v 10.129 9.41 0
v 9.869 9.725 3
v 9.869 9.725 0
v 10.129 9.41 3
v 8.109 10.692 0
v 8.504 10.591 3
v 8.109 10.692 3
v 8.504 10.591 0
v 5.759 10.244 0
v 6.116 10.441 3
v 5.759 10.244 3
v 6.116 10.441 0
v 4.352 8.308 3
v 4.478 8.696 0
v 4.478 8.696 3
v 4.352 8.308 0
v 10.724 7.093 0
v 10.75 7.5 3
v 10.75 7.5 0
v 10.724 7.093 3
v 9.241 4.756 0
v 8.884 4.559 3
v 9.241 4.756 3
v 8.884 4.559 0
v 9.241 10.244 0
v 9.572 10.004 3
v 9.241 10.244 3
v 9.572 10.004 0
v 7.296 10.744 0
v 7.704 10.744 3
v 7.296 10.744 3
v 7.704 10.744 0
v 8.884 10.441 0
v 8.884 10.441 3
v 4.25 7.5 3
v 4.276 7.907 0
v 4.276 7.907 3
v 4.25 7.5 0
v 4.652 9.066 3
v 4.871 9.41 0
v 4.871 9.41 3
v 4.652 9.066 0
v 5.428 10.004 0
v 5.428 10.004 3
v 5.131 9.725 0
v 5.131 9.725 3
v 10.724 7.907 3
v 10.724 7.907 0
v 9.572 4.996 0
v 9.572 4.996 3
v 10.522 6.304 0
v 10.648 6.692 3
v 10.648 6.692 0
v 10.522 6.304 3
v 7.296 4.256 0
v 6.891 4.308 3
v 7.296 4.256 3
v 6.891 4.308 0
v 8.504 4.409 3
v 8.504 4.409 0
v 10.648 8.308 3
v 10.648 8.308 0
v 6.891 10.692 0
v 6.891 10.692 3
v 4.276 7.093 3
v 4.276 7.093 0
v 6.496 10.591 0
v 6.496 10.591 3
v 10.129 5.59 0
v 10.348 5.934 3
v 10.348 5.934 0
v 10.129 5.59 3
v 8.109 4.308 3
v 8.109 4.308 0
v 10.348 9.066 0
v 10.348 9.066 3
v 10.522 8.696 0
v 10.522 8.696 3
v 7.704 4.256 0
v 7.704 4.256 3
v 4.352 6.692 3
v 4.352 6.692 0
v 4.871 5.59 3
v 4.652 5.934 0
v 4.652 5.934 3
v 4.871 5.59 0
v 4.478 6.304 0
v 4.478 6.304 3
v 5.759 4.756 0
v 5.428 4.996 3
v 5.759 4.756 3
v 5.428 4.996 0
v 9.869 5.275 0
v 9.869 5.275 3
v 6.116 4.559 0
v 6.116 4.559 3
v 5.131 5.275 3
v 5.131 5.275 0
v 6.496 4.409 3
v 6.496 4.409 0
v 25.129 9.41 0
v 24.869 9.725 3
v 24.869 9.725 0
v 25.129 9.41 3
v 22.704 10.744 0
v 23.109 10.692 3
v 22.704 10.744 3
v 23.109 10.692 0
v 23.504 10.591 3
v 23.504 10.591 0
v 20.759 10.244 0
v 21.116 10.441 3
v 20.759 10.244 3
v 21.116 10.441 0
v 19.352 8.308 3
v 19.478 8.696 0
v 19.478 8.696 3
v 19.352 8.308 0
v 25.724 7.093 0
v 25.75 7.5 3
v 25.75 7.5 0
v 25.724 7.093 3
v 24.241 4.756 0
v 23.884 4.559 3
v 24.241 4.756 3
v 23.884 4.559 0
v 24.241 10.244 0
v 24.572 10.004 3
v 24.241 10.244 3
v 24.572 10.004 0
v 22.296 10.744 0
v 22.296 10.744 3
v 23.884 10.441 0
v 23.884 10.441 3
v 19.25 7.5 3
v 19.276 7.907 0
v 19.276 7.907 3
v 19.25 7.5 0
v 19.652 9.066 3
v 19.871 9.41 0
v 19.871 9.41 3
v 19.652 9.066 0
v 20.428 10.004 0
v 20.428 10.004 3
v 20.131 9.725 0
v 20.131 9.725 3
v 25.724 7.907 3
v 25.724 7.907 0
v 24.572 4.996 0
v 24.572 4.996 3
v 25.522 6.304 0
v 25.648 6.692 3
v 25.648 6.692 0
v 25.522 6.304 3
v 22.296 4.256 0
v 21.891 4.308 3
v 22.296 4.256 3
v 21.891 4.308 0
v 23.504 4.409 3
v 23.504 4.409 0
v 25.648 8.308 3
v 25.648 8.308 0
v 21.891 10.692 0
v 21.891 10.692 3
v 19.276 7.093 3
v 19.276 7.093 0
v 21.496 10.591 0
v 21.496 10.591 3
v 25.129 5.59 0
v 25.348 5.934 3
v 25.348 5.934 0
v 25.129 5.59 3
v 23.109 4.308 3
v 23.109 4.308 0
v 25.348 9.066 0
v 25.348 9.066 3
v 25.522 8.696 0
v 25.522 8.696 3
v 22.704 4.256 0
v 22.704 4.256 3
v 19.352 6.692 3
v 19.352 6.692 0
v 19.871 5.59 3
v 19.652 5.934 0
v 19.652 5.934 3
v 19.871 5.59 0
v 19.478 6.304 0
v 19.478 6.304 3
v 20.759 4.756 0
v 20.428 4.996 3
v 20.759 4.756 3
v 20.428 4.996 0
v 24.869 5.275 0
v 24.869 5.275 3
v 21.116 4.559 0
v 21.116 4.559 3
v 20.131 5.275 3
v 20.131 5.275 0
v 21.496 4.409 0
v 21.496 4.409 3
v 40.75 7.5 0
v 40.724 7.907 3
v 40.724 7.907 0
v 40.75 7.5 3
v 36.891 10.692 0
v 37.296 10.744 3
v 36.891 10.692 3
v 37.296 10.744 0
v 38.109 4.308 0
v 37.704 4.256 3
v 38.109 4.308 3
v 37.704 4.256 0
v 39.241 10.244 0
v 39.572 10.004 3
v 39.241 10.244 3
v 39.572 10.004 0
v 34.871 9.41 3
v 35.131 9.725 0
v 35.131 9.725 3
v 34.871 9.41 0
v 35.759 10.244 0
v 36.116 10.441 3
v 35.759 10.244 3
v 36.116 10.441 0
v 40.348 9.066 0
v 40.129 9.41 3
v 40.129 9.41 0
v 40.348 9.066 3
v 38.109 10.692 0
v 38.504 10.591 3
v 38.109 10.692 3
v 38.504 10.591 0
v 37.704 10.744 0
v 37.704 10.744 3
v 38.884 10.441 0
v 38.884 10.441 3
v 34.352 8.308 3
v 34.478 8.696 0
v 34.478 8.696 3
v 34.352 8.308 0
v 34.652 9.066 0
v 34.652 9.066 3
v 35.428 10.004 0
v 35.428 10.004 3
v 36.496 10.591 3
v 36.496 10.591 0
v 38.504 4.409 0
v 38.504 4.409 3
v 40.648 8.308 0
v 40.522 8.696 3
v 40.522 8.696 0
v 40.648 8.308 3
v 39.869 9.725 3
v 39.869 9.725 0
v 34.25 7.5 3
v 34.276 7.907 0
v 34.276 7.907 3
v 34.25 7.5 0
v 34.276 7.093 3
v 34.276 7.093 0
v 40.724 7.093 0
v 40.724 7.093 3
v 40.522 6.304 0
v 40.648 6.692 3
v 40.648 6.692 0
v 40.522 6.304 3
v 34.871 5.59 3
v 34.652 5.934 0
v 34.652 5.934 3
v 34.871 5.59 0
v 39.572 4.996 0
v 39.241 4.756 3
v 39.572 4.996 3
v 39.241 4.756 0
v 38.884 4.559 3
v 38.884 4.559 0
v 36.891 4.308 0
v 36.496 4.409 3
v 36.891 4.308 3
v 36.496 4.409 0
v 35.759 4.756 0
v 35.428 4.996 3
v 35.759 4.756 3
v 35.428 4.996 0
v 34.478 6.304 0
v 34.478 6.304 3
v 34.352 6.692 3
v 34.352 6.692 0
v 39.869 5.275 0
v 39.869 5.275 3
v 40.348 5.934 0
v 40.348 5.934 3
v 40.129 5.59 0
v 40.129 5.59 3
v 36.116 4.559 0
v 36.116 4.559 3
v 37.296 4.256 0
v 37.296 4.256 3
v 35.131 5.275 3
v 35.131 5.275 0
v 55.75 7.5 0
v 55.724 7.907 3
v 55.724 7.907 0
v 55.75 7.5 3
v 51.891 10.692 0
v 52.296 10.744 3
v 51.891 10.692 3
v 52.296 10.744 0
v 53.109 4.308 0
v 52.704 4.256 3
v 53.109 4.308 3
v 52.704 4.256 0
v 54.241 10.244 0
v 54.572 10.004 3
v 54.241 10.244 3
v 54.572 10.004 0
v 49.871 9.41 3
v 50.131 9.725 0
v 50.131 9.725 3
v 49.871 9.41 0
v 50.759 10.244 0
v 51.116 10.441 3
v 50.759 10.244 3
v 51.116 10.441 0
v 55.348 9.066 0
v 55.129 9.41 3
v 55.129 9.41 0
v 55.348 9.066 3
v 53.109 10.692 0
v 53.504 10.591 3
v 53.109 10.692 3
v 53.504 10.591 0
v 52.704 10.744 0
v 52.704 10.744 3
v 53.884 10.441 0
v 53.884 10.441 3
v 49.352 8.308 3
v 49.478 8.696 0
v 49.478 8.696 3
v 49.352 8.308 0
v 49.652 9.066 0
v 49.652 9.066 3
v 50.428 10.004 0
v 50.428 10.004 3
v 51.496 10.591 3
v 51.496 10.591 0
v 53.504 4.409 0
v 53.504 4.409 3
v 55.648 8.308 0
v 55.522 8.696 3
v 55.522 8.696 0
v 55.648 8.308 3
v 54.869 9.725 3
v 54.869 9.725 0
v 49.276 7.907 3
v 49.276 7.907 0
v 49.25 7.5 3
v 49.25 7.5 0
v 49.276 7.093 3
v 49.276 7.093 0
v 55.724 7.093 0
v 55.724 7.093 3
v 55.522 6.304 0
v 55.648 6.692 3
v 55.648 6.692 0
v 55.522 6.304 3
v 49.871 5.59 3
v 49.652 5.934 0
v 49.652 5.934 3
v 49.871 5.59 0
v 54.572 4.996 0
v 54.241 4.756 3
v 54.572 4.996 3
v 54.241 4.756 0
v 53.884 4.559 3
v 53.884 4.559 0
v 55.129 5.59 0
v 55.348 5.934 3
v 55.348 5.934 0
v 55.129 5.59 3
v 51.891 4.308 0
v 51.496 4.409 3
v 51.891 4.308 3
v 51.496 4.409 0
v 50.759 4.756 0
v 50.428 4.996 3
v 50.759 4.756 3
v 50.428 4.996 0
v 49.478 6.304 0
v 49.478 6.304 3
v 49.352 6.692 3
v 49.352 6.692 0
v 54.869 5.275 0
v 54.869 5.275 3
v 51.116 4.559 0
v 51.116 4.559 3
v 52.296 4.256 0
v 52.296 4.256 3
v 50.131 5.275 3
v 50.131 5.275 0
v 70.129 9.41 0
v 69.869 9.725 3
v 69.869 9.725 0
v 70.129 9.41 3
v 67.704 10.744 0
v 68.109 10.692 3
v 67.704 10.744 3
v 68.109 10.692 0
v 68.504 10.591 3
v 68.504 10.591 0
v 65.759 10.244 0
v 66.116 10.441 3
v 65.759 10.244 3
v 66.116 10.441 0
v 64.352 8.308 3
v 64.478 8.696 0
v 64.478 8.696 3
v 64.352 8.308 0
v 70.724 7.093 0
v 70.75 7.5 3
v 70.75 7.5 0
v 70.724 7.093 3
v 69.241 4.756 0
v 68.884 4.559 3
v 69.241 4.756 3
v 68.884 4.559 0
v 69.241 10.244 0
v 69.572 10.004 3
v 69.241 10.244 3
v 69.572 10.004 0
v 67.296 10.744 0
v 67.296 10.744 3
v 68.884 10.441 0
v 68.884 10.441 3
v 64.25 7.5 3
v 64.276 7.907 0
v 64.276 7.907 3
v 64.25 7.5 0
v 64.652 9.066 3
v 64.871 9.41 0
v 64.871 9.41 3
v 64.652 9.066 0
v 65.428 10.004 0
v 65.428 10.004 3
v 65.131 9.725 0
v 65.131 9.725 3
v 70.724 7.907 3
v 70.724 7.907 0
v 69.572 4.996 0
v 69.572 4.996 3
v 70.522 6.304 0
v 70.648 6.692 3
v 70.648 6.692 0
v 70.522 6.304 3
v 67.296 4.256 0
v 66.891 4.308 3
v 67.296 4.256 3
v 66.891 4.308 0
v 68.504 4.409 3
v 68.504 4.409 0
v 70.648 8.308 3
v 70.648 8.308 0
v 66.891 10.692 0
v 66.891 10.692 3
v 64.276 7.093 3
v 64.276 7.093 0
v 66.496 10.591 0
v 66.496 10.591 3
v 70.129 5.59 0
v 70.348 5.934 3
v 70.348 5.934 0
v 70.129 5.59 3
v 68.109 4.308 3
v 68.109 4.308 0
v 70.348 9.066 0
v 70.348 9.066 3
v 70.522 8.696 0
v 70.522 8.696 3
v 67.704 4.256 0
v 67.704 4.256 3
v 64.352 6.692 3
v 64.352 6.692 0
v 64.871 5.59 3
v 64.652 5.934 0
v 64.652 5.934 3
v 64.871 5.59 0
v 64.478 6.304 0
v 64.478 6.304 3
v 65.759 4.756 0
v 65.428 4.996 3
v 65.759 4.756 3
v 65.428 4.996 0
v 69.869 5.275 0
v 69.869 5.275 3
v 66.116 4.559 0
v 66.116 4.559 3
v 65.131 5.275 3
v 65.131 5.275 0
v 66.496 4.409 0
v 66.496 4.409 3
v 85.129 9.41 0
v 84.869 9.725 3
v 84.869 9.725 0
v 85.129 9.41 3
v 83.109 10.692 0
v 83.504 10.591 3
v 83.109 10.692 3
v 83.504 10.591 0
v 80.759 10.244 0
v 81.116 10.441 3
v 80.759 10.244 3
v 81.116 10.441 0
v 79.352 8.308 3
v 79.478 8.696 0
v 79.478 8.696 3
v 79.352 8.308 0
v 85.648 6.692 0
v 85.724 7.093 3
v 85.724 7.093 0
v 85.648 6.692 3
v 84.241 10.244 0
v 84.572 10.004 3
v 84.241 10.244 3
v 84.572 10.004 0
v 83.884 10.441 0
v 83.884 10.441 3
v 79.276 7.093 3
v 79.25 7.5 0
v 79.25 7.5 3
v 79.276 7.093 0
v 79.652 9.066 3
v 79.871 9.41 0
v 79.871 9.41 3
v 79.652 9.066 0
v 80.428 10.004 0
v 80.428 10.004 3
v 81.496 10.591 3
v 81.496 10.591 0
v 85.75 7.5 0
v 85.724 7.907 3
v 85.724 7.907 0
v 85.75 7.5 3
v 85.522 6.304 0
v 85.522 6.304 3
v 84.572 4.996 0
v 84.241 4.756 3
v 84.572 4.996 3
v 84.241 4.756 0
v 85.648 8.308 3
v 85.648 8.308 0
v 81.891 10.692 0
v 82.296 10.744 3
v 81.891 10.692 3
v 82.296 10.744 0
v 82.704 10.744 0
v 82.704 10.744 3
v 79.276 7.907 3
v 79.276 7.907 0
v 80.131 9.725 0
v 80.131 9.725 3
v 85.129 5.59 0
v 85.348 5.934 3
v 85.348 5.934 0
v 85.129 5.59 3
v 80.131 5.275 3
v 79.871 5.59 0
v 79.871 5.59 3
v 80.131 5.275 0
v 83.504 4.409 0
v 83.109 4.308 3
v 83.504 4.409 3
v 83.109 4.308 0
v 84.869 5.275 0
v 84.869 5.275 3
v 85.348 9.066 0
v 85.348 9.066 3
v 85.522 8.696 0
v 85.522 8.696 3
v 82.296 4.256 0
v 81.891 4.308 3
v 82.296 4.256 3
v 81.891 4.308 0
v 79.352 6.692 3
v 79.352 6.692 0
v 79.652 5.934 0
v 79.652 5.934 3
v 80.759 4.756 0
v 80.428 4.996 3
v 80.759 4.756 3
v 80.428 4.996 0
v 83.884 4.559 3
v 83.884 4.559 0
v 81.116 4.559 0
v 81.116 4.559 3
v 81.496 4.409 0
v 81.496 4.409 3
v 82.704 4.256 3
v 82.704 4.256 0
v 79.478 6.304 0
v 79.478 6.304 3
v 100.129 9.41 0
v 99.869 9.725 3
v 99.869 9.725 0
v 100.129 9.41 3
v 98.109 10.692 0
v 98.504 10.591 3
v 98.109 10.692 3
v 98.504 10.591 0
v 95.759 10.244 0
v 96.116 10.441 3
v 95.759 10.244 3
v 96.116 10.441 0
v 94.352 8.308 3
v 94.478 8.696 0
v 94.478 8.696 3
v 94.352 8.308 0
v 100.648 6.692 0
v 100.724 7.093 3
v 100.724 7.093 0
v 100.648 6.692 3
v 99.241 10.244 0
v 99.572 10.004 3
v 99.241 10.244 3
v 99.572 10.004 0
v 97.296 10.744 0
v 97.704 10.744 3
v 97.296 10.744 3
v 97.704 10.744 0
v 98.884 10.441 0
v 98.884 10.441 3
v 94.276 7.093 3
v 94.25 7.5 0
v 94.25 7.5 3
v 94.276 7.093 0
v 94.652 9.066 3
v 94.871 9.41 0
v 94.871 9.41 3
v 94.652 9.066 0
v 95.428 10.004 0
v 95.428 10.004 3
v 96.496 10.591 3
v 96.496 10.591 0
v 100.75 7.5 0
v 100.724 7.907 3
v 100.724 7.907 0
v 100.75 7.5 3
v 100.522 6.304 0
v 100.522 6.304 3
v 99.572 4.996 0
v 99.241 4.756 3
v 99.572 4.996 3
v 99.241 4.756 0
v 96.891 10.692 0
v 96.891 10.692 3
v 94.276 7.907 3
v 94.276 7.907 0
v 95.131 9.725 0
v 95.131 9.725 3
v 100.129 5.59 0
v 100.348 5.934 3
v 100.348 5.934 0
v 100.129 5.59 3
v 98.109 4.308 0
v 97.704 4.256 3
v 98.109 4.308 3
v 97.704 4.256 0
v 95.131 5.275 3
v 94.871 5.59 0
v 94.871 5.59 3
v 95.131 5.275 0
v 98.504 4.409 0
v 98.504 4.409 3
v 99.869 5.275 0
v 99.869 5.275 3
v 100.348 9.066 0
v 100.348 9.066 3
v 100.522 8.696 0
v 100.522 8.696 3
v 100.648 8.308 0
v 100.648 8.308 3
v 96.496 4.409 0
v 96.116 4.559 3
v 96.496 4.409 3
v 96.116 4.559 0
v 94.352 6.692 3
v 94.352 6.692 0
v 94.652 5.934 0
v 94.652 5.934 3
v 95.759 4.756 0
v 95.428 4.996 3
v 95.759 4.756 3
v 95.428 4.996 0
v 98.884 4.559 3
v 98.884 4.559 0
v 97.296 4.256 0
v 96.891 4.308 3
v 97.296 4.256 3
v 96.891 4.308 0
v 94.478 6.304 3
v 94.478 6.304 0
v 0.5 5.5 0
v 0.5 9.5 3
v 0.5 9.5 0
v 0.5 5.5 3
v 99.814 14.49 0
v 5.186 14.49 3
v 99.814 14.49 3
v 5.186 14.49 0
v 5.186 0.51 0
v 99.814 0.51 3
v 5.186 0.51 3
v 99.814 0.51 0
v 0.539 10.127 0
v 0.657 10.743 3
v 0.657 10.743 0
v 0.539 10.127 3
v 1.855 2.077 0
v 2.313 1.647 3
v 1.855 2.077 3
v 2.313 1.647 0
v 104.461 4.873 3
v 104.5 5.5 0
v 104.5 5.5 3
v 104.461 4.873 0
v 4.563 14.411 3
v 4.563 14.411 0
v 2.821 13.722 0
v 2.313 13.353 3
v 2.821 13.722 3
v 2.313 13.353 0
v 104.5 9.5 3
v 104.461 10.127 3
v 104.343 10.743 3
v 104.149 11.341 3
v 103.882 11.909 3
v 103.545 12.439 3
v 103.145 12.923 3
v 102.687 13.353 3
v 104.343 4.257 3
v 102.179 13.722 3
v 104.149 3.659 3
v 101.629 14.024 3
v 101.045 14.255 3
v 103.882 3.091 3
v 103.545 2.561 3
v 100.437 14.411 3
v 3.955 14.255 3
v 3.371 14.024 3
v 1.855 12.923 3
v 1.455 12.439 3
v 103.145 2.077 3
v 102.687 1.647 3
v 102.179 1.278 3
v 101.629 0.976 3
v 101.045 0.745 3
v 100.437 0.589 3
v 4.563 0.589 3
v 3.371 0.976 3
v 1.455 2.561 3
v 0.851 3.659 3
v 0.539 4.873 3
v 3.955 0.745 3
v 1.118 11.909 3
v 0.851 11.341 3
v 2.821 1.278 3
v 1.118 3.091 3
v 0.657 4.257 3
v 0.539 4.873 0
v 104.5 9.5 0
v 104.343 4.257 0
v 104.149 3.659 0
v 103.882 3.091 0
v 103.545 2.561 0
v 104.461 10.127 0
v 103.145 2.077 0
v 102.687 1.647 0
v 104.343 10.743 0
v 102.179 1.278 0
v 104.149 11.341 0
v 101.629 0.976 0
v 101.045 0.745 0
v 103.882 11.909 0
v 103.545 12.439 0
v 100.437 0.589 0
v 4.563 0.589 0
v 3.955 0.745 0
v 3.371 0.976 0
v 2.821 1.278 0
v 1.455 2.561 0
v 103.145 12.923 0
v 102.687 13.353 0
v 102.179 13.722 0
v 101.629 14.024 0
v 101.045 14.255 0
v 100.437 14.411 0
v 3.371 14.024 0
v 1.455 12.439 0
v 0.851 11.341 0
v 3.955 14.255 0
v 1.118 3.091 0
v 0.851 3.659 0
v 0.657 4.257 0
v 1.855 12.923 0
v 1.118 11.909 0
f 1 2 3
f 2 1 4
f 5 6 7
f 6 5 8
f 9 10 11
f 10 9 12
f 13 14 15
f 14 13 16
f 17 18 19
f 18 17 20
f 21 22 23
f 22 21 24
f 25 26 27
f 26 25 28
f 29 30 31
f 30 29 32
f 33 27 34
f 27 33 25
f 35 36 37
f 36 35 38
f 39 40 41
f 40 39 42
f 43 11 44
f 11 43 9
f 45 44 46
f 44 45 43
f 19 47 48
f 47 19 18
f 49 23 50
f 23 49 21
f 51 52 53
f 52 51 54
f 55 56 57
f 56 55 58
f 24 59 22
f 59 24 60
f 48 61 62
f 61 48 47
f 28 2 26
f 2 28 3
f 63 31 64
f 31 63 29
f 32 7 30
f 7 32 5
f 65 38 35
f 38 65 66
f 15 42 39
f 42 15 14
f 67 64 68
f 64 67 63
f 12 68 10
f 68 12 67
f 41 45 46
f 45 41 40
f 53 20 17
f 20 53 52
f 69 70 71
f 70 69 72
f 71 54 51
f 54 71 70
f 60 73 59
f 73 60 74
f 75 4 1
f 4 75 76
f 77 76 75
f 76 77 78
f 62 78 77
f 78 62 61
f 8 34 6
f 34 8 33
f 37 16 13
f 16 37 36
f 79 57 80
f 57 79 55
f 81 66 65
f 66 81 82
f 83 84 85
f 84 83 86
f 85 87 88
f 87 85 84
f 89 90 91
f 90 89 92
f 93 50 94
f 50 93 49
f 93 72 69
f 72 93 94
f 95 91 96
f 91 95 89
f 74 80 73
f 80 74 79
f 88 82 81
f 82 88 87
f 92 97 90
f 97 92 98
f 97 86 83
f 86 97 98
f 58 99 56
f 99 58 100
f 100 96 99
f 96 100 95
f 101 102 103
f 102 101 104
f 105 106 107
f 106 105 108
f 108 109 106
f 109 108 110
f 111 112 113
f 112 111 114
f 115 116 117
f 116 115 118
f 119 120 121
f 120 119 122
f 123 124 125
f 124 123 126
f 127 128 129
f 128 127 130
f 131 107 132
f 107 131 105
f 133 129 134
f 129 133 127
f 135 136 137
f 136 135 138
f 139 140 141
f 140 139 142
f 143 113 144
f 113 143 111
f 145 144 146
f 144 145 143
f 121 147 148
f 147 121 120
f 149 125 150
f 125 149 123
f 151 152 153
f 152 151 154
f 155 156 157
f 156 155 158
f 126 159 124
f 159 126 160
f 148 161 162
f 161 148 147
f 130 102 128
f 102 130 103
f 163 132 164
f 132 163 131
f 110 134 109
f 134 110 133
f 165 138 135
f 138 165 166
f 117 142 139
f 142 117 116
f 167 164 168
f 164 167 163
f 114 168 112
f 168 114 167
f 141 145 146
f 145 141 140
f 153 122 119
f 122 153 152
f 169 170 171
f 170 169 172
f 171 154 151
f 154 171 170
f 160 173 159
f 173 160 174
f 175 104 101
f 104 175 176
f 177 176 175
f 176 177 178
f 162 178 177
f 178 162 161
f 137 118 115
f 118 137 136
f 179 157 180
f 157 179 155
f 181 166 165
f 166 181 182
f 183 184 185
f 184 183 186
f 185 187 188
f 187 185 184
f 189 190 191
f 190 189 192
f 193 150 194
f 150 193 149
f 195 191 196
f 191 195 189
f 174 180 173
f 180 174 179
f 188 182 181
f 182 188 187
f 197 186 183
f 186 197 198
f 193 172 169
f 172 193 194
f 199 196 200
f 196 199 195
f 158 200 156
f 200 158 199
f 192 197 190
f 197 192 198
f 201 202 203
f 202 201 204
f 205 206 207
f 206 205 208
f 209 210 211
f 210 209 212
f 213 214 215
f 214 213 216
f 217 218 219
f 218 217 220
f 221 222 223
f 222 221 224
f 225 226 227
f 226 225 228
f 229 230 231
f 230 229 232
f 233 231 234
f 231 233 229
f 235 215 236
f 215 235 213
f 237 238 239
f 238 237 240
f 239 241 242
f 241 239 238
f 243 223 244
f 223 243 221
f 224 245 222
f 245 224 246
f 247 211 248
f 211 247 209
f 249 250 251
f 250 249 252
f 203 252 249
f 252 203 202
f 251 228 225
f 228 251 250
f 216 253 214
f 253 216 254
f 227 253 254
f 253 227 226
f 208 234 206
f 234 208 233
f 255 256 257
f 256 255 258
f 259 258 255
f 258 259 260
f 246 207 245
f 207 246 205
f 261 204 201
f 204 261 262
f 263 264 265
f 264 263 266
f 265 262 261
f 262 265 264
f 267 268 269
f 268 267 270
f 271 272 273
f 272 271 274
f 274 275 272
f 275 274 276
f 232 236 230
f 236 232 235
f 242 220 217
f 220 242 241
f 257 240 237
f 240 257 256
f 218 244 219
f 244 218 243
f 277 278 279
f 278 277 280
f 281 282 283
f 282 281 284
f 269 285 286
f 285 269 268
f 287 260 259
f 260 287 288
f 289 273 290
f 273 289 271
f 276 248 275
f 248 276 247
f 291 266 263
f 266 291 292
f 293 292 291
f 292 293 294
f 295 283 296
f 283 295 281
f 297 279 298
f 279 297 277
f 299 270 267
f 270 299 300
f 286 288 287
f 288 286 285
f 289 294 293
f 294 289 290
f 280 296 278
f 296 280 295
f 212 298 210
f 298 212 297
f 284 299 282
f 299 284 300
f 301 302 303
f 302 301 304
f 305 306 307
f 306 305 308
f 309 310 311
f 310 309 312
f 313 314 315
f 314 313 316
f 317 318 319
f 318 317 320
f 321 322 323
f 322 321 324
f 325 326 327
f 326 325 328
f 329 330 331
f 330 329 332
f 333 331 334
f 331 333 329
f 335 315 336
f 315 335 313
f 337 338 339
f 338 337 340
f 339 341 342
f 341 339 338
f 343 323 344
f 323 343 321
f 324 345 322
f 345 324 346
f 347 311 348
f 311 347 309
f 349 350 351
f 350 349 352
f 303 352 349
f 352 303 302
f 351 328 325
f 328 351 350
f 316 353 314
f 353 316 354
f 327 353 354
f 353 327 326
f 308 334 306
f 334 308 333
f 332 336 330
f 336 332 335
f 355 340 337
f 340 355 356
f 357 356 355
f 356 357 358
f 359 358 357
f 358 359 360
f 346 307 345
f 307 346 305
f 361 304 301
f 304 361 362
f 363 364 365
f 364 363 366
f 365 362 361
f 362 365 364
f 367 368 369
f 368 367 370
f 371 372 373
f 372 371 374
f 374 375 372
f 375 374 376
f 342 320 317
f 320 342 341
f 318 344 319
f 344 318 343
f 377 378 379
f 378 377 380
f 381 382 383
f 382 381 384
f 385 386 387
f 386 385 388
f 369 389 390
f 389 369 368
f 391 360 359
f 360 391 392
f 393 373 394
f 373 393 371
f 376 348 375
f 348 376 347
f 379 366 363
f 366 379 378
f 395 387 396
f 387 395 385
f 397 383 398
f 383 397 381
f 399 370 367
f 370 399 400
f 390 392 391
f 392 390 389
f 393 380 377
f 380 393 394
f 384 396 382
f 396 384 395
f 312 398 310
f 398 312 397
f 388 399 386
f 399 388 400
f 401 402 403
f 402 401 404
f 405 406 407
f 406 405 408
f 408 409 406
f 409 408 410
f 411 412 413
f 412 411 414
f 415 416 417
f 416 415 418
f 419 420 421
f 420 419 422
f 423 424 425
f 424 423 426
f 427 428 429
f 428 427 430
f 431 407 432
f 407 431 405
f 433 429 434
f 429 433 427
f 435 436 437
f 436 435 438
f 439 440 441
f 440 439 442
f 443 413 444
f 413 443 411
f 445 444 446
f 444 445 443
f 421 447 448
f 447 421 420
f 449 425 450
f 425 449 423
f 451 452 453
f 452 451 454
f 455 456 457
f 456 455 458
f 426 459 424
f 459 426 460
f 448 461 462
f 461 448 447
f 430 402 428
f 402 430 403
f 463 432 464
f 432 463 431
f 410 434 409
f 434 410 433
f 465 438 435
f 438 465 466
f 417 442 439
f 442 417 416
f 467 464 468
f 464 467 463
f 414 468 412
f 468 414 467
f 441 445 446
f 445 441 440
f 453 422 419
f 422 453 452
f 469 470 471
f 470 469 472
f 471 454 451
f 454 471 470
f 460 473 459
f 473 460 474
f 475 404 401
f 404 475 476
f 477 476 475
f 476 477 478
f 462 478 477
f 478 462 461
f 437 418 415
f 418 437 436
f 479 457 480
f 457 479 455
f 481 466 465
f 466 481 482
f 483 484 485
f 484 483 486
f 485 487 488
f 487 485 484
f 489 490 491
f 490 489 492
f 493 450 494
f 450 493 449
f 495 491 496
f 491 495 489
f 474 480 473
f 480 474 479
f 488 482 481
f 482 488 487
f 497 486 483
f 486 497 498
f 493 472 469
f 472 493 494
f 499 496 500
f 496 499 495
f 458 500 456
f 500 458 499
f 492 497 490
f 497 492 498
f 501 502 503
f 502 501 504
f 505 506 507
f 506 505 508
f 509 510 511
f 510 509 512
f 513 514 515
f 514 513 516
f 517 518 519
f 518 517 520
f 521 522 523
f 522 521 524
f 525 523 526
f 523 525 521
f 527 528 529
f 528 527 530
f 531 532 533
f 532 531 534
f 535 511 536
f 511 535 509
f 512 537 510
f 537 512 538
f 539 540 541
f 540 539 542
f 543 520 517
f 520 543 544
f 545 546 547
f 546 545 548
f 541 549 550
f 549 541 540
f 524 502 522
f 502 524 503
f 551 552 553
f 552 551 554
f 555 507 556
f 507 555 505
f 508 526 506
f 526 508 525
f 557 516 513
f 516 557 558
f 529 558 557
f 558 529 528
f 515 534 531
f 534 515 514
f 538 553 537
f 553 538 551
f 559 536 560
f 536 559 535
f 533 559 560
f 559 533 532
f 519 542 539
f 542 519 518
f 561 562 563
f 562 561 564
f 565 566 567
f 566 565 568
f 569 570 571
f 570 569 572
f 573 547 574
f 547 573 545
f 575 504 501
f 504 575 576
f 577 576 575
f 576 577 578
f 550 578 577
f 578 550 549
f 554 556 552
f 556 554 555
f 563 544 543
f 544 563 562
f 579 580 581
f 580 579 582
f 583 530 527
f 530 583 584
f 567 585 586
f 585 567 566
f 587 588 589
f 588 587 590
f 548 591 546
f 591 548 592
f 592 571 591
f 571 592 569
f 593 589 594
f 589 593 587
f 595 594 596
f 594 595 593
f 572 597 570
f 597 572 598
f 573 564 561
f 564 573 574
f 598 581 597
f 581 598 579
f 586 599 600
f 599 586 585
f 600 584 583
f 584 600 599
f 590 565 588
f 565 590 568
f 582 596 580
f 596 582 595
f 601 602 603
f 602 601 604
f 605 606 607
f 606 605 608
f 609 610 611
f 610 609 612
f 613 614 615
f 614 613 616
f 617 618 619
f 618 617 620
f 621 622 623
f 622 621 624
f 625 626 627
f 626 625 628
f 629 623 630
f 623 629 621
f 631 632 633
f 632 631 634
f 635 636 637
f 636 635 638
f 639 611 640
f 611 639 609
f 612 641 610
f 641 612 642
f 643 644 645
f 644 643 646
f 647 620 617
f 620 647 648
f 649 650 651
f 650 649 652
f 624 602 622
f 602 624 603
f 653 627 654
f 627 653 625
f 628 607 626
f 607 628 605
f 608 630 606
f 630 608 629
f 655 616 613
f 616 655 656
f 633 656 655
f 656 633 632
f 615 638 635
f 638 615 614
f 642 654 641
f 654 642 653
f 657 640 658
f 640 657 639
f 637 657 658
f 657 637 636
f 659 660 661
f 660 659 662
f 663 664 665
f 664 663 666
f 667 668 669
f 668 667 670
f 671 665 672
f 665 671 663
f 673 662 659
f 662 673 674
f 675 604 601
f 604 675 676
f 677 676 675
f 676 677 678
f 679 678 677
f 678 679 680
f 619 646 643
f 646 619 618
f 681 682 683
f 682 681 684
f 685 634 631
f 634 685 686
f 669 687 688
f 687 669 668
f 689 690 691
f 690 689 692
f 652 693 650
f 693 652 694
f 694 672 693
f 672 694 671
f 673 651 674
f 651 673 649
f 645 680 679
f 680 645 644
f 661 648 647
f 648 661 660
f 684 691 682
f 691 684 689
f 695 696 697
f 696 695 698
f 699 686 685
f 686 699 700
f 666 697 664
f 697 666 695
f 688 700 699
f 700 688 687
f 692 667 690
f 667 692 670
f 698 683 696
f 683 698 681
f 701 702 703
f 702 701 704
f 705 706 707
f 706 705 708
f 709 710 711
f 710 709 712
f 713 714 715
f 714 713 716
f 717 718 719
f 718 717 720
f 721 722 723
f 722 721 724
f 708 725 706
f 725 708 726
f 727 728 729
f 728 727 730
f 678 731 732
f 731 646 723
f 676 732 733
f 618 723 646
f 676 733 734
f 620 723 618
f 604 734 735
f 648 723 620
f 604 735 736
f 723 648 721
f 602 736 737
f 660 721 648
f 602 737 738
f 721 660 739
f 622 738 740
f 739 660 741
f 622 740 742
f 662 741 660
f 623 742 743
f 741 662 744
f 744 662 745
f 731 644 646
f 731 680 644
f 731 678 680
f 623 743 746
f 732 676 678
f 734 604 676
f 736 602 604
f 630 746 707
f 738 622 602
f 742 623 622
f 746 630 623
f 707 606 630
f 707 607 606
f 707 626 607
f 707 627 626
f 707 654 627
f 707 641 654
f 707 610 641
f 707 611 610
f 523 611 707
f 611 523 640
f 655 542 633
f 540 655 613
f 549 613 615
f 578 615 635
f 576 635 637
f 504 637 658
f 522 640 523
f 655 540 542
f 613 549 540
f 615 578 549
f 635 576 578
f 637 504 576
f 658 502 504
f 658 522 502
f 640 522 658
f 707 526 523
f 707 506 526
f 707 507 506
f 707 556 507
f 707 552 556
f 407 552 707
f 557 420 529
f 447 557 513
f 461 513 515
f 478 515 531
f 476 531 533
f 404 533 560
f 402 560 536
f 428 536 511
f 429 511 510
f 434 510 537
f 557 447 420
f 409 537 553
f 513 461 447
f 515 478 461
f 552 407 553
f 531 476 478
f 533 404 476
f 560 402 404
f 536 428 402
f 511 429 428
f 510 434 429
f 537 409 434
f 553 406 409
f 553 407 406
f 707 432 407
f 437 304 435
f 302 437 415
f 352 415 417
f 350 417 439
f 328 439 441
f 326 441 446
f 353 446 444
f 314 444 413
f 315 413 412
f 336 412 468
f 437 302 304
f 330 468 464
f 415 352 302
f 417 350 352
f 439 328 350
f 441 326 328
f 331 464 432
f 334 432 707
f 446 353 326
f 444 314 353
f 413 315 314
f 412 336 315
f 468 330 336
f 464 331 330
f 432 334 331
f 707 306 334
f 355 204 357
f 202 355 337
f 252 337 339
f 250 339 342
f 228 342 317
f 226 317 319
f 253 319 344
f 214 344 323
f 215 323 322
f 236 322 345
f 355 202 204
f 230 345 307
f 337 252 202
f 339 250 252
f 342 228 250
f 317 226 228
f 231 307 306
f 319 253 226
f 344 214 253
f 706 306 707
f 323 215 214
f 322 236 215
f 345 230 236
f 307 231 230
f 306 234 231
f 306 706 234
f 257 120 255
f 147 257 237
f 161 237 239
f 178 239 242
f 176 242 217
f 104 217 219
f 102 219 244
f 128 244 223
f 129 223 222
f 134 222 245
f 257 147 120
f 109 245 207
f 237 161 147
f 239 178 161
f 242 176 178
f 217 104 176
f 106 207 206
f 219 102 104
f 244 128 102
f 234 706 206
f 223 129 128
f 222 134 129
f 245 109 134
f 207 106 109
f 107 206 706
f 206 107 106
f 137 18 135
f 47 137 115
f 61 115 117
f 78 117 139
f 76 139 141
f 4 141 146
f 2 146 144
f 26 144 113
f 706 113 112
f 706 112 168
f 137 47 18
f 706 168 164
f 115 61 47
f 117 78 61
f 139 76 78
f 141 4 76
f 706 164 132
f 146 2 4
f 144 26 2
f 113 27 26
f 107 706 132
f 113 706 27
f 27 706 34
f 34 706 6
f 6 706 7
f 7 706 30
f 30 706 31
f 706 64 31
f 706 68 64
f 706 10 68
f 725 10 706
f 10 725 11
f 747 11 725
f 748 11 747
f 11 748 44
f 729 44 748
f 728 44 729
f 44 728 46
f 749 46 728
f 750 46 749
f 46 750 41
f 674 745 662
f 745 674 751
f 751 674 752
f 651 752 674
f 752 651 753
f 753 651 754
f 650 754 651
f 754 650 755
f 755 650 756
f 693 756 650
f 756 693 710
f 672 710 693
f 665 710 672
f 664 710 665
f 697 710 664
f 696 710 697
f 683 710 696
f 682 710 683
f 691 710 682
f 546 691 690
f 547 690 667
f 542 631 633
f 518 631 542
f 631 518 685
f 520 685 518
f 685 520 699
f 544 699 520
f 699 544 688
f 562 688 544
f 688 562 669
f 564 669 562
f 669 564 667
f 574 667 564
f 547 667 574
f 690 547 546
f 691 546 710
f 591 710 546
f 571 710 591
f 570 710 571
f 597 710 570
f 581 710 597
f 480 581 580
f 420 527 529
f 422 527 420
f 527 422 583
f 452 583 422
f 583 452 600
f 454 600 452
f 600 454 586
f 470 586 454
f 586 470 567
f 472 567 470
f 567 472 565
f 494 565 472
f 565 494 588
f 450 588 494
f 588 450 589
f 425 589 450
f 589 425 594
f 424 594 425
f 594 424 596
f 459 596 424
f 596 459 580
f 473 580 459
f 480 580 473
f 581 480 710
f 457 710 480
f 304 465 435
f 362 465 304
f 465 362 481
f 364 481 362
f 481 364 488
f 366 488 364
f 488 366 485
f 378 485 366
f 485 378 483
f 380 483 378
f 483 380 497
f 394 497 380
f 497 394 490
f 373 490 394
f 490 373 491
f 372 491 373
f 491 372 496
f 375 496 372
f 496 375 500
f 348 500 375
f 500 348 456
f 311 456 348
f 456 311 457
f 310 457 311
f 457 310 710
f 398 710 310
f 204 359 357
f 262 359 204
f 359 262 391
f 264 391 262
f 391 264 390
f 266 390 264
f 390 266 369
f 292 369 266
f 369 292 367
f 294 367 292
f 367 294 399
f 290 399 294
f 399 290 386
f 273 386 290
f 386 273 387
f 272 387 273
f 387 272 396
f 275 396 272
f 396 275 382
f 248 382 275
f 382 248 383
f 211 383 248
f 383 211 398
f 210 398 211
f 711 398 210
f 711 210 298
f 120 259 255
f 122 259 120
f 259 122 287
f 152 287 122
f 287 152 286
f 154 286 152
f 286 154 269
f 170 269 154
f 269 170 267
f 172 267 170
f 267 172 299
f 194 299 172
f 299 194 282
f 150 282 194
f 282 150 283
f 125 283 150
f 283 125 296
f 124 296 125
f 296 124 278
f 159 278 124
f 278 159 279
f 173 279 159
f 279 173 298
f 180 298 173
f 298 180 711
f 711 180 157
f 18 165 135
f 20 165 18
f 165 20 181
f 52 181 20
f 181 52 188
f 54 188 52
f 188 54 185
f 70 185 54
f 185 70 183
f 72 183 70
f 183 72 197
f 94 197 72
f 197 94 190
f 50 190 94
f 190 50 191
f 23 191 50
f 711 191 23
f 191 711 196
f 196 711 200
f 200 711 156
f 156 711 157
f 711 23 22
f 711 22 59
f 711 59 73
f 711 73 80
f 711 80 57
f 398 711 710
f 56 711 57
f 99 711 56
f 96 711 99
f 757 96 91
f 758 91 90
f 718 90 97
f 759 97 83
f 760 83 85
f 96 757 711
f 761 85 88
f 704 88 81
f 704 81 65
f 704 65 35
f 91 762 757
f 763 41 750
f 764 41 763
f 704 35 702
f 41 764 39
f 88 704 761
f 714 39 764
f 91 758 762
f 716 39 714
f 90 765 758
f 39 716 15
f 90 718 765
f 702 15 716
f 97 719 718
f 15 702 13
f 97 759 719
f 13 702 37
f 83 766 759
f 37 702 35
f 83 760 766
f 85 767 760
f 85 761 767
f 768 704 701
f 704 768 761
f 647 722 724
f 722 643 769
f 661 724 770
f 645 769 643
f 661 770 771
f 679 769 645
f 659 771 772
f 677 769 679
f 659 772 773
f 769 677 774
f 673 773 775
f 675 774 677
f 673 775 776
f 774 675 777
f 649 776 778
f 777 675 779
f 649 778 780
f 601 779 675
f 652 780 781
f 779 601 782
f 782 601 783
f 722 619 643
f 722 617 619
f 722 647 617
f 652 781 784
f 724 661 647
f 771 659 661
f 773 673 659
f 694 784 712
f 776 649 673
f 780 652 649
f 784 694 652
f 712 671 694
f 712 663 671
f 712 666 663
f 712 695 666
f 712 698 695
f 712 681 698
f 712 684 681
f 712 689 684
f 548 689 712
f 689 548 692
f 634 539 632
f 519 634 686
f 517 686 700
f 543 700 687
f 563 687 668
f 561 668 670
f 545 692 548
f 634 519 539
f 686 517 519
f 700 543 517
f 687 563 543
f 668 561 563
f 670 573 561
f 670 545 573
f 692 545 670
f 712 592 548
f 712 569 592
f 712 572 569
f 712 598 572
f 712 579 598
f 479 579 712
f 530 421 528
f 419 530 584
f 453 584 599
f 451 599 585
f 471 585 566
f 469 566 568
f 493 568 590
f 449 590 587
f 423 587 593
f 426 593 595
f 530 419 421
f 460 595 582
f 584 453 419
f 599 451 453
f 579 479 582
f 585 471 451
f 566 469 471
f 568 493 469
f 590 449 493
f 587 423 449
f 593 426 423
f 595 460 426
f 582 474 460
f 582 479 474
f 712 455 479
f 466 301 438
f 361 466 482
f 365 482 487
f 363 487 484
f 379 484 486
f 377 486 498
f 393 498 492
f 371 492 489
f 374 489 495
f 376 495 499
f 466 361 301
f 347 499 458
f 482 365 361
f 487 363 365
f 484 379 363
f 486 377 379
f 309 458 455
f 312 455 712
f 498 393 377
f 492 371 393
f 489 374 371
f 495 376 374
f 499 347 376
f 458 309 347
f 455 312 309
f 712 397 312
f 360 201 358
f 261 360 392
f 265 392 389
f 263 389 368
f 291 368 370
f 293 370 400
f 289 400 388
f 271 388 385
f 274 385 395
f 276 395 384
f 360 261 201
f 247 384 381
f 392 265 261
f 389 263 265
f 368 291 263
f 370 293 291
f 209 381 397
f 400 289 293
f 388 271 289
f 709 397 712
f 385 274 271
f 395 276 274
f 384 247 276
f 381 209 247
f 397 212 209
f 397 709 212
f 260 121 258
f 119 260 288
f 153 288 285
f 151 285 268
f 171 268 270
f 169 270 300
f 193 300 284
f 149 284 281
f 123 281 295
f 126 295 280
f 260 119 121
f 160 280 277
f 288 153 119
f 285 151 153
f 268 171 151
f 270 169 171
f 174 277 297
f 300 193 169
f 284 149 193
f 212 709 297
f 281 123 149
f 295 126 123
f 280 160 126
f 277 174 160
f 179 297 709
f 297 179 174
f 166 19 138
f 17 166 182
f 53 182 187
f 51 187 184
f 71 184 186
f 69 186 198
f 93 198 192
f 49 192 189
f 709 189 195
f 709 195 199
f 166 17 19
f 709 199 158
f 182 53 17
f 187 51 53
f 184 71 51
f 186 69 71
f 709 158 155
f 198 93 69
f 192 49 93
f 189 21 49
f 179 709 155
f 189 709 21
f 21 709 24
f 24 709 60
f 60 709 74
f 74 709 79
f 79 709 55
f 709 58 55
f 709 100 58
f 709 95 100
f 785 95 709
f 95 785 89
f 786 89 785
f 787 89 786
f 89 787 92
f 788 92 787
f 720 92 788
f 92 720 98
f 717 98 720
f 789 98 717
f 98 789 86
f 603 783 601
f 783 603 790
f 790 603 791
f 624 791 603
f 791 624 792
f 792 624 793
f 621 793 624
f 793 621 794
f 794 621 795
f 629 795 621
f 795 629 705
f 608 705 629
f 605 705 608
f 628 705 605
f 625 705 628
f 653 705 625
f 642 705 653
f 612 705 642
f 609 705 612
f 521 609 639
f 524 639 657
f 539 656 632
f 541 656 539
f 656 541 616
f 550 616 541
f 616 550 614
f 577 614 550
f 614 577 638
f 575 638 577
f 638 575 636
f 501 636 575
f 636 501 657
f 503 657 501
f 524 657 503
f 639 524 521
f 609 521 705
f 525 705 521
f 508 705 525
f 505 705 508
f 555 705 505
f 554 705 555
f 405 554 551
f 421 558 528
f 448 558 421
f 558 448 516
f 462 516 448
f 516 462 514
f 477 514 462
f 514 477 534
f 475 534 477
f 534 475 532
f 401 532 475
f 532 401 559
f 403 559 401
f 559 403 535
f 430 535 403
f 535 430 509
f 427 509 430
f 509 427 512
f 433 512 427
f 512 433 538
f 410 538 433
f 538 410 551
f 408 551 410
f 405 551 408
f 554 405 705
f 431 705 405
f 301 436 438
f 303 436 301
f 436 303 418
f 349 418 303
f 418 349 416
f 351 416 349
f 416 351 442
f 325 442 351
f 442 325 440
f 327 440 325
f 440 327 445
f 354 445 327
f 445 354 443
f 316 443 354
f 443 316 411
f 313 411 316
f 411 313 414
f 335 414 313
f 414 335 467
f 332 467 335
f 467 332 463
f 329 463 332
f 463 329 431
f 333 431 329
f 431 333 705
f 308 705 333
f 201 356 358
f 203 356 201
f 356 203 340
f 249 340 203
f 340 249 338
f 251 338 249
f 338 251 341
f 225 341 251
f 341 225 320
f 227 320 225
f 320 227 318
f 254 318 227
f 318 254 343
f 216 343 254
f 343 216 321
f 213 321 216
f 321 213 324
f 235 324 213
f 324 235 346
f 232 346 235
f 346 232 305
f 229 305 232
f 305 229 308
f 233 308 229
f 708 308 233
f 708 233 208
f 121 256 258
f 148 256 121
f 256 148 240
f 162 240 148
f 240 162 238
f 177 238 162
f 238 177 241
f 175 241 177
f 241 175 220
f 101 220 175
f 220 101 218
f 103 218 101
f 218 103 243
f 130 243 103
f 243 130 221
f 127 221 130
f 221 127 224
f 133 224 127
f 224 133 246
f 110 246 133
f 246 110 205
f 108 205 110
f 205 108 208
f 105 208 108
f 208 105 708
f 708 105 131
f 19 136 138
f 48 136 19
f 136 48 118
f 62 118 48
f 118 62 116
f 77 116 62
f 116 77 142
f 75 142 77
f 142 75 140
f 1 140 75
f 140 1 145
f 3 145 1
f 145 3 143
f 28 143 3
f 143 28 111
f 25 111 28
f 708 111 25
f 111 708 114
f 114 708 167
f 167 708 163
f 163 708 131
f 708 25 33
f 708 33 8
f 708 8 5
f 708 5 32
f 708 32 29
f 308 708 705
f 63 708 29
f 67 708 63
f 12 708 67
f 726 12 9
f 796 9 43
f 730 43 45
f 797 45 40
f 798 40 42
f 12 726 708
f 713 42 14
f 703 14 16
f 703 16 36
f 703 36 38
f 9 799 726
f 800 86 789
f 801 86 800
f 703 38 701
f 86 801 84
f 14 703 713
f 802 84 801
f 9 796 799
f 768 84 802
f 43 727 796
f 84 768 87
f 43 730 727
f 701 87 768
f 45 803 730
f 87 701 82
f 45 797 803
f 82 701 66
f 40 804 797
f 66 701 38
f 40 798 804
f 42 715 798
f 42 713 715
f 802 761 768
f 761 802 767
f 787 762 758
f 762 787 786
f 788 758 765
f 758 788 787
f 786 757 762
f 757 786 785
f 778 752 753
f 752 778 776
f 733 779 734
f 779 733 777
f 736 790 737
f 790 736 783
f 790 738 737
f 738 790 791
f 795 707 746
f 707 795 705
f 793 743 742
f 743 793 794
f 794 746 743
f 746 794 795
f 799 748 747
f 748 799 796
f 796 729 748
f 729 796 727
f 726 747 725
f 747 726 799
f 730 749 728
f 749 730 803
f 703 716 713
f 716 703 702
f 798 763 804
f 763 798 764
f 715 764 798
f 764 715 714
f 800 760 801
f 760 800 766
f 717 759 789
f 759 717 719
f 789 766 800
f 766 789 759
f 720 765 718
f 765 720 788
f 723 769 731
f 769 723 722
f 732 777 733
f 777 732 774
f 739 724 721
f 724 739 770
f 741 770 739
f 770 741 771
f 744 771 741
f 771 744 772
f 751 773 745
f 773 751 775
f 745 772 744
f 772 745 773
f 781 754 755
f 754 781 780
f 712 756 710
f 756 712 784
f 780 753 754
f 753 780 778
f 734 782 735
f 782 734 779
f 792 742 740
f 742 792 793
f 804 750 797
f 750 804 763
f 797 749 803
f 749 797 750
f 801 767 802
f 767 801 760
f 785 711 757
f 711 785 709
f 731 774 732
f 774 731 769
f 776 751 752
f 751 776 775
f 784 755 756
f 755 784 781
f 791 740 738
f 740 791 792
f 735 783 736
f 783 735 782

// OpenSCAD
// Generated by SolidPython 1.1.3 on 2023-01-09 15:32:10
$fn = 50;


difference() {
	union() {
		translate(v = [52.5000000000, 7.5000000000, 0]) {
			rotate(a = [0, 0, 0]) {
				hull() {
					translate(v = [-47.0000000000, 2.0000000000, 0]) {
						rotate(a = [0, 0, 0]) {
							translate(v = [0, 0, 0]) {
								rotate(a = [0, 0, 0]) {
									cylinder(h = 3, r = 5);
								}
							}
						}
					}
					translate(v = [47.0000000000, 2.0000000000, 0]) {
						rotate(a = [0, 0, 0]) {
							translate(v = [0, 0, 0]) {
								rotate(a = [0, 0, 0]) {
									cylinder(h = 3, r = 5);
								}
							}
						}
					}
					translate(v = [-47.0000000000, -2.0000000000, 0]) {
						rotate(a = [0, 0, 0]) {
							translate(v = [0, 0, 0]) {
								rotate(a = [0, 0, 0]) {
									cylinder(h = 3, r = 5);
								}
							}
						}
					}
					translate(v = [47.0000000000, -2.0000000000, 0]) {
						rotate(a = [0, 0, 0]) {
							translate(v = [0, 0, 0]) {
								rotate(a = [0, 0, 0]) {
									cylinder(h = 3, r = 5);
								}
							}
						}
					}
				}
			}
		}
	}
	union() {
		translate(v = [7.5000000000, 7.5000000000, 0]) {
			rotate(a = [0, 0, 0]) {
				translate(v = [0, 0, -50]) {
					rotate(a = [0, 0, 0]) {
						cylinder(h = 100, r = 3.2500000000);
					}
				}
			}
		}
		translate(v = [22.5000000000, 7.5000000000, 0]) {
			rotate(a = [0, 0, 0]) {
				translate(v = [0, 0, -50]) {
					rotate(a = [0, 0, 0]) {
						cylinder(h = 100, r = 3.2500000000);
					}
				}
			}
		}
		translate(v = [37.5000000000, 7.5000000000, 0]) {
			rotate(a = [0, 0, 0]) {
				translate(v = [0, 0, -50]) {
					rotate(a = [0, 0, 0]) {
						cylinder(h = 100, r = 3.2500000000);
					}
				}
			}
		}
		translate(v = [52.5000000000, 7.5000000000, 0]) {
			rotate(a = [0, 0, 0]) {
				translate(v = [0, 0, -50]) {
					rotate(a = [0, 0, 0]) {
						cylinder(h = 100, r = 3.2500000000);
					}
				}
			}
		}
		translate(v = [67.5000000000, 7.5000000000, 0]) {
			rotate(a = [0, 0, 0]) {
				translate(v = [0, 0, -50]) {
					rotate(a = [0, 0, 0]) {
						cylinder(h = 100, r = 3.2500000000);
					}
				}
			}
		}
		translate(v = [82.5000000000, 7.5000000000, 0]) {
			rotate(a = [0, 0, 0]) {
				translate(v = [0, 0, -50]) {
					rotate(a = [0, 0, 0]) {
						cylinder(h = 100, r = 3.2500000000);
					}
				}
			}
		}
		translate(v = [97.5000000000, 7.5000000000, 0]) {
			rotate(a = [0, 0, 0]) {
				translate(v = [0, 0, -50]) {
					rotate(a = [0, 0, 0]) {
						cylinder(h = 100, r = 3.2500000000);
					}
				}
			}
		}
	}
}
/***********************************************
*********      SolidPython code:      **********
************************************************
 
from solid import *
import os
import subprocess

import oomB

import opsc_library_gen

mode = "laser"
#mode = "3d_print"

defined_objects = {}

radius_dict = {}
countersunk_dict = {}


def set_mode(m):
    global mode
    mode = m
    radius_dict['M6'] = 6.5/2
    radius_dict['M3'] = 3.3/2
    if mode == "laser":
        radius_dict['M6'] = 6/2
        radius_dict['M3'] = 3/2

    countersunk_dict['M3'] = {}
    countersunk_dict['M3']['little_rad'] = radius_dict['M3']
    countersunk_dict['M3']['big_rad'] = (5.5+0.6)/2
    if mode == "laser":
        countersunk_dict['M3']['big_rad'] = (4.75+0.6)/2
        countersunk_dict['M3']['little_rad'] = (4.75+0.6)/2

    countersunk_dict['M3']['height'] = 1.7


def opsc_make_object(filename, objects, save_type="none",resolution=50, layers = 1, tilediff = 200, mode="laser"):
    set_mode(mode)
    save_type = save_type.lower()
    os.makedirs(os.path.dirname(filename), exist_ok=True)
    final_object = opsc_get_object(objects)
    # Save the final object to the specified filename    
    scad_render_to_file(final_object, filename, file_header='$fn = %s;' % resolution, include_orig_code=True)
    if mode == "laser":
        filename_laser = filename.replace(".scad","-flat.scad")
        scad_render_to_file(getLaser(final_object, layers=layers, tilediff=tilediff), filename_laser, file_header='$fn = %s;' % resolution, include_orig_code=True)
        if save_type == "all":
            saveToAll(filename_laser)
        elif save_type == "dxf":
            saveToDxf(filename_laser)
    if save_type == "all":
        saveToAll(filename)
    elif save_type == "dxf":
        saveToDxf(filename)


def opsc_get_object(objects):
    # Create the solidpython objects
    positive_objects = [get_opsc_item(obj) for obj in objects if obj['type'] == 'positive']
    negative_objects = [get_opsc_item(obj) for obj in objects if obj['type'] == 'negative']
    # Union the positive objects
    positive_object = union()(*positive_objects)
    # Union the negative objects
    negative_object = union()(*negative_objects)
    # Create the final object by subtracting the negative objects from the positive objects
    return difference()(positive_object, negative_object)

def get_opsc_item(params):
    # A dictionary to map radius string values to numerical values
    #radius_dict = {'small': 5, 'medium': 10, 'large': 15}
    # An array of function names for basic shapes
    basic_shapes = ['cube', 'sphere', 'cylinder']
    
    # An array of function names for other shapes
    other_shapes = ['hole', 'slot', 'rounded_rectangle', 'countersunk']
    


    # Convert radius to r if present, and remove radius from the params dictionary
    if 'radius' in params:
        if isinstance(params['radius'], str):
            # Use the radius_dict to map the radius string value to a numerical value
            params['r'] = radius_dict[params['radius']]
        else:
            params['r'] = params['radius']
        del params['radius']
    

    # Check if the object type is a basic shape
    if params['shape'] in basic_shapes:
        # Remove shape and unexpected dictionary values
        allowed_keys = {'size', 'r', 'r1', 'r2', 'd', 'h', 'rw', 'rh', 'dw', 'dh'}
        shape_params = {k: v for k, v in params.items() if k in allowed_keys}

        # Call the corresponding function for the shape parameter, using ** notation to pass the shape_params dictionary as keyword arguments
        return get_opsc_transform(params,globals()[params['shape']](**shape_params))
    
    # If the object type is not a basic shape, check if it's a defined object or one of the other shapes
    elif params['shape'] in other_shapes:
        # Call the corresponding function for the shape parameter, passing the params dictionary as an argument
        p2 = copy.deepcopy(params)
        p2["pos"] = [0,0,0]
        return get_opsc_transform(params,globals()[params['shape']](p2))
    
    # If the object is not a basic shape or a defined object, try to import it from a .scad file
    else:
        obj = defined_objects[params['shape']]
        return get_opsc_transform(params,obj)

def get_opsc_transform(params, solid_obj):
    # Rotate the object based on the 'rot' field in the params dictionary, or the 'rotX', 'rotY', and 'rotZ' fields if 'rot' is not present
    rot = params.get('rot', [])
    if rot:
        rotX, rotY, rotZ = rot
    else:
        rotX = params.get('rotX', 0)
        rotY = params.get('rotY', 0)
        rotZ = params.get('rotZ', 0)
    solid_obj = rotate([rotX, rotY, rotZ])(solid_obj)

    # Translate the object based on the 'pos' field in the params dictionary, or the 'x', 'y', and 'z' fields if 'pos' is not present
    pos = params.get('pos', [])
    if pos:
        x, y, z = pos
    else:
        x = params.get('x', 0)
        y = params.get('y', 0)
        z = params.get('z', 0)
    solid_obj = translate([x, y, z])(solid_obj)
    return solid_obj


import random

def opsc_easy_array(type, shape, repeats, pos_start, shift_arr, **kwargs):
    for i in range(0,3):
        repeats.append(1)
        pos_start.append(0)
        shift_arr.append(0)
    return_objects = []

    for x in range(0,repeats[0]):
        for y in range(0,repeats[1]):
            for z in range(0,repeats[2]):
                return_objects.append(opsc_easy(type, shape, pos=[pos_start[0]+x*shift_arr[0],pos_start[1]+y*shift_arr[1],pos_start[2]+z*shift_arr[2]], **kwargs))
    return return_objects                



def opsc_easy(type, shape, **kwargs):
    obj = {
        'type': type,
        'shape': shape
    }
    for param in ['size', 'r', 'r1', 'r2', 'd', 'h', 'rw', 'rh', 'dw', 'dh', 'pos', 'x', 'y', 'z', 'rot', 'rotX', 'rotY', 'rotZ', "w"]:
        if param in kwargs:
            obj[param] = kwargs[param]
    return obj

def hole(params):
    p2 = copy.deepcopy(params)  
    # Check if the radius is a string and replace it with the corresponding value from the dictionary
    if isinstance(p2['r'], str):
        p2['r'] = radius_dict[p2['r']]
    
    # Set the height to 100 if not specified
    if 'h' not in p2:
        p2['h'] = 100
        p2["pos"] = [0,0,-50]
    p2["center"] = True
    # Create the cylinder object
    p2["shape"] = "cylinder"
    p2["type"] = "positive"

    return get_opsc_item(p2)

import copy

def countersunk(params):
    p2 = copy.deepcopy(params)
    counter_rad = p2['r']
    p2['r'] = radius_dict[p2['r']]
    hp = copy.deepcopy(p2)
    hp["type"] = "positive"
    hp["shape"] = "hole"
    del hp["rot"]
    hol = get_opsc_item(hp)
    
    cp = copy.deepcopy(p2)
    cp["h"] = countersunk_dict[counter_rad]["height"]
    cp["r2"] = countersunk_dict[counter_rad]["little_rad"]
    cp["r1"] = countersunk_dict[counter_rad]["big_rad"]
    del cp["r"]
    del cp["rot"]
    cp["type"] = "positive"
    cp["shape"] = "cylinder"
    cp["pos"] = [0,0,0]

    top = get_opsc_item(cp)
    return union()(hol,top)



def slot(params):  
    p2 = copy.deepcopy(params) 
    if isinstance(p2['r'], str):
        p2['r'] = radius_dict[p2['r']]
    p2["type"] = "positive"
    p2["shape"] = "hole"
    del p2["rot"]
    p2["pos"] = [0,0,0]
    left = copy.deepcopy(p2)
    right = copy.deepcopy(p2)
    left["pos"][0] = p2["w"] / 2 - p2["r"] 
    
    right["pos"][0] = -p2["w"] / 2 + p2["r"] 
    pass
    leftObj = get_opsc_item(left)
    rightObj = get_opsc_item(right)
    return hull()(leftObj, rightObj)

def rounded_rectangle(params):   
    p2 = copy.deepcopy(params) 
    p2["h"] = p2["size"][2]
    p2["pos"] = p2.get("pos", [0, 0, 0]) 
    p2["type"] = "positive"
    p2["shape"] = "hole"
    p2["pos"] = [0,0,0]
    
    if 'rot' in p2:
        del p2["rot"]   
    if 'r' not in p2:
        p2["r"] = 5 
    tl = copy.deepcopy(p2)
    tr = copy.deepcopy(p2)
    bl = copy.deepcopy(p2)
    br = copy.deepcopy(p2)
    tl["pos"][0] = -(p2["size"][0] - p2["r"]*2)/2
    tl["pos"][1] = (p2["size"][1] - p2["r"]*2)/2
    tr["pos"][0] = (p2["size"][0] - p2["r"]*2)/2
    tr["pos"][1] = (p2["size"][1] - p2["r"]*2)/2
    bl["pos"][0] = -(p2["size"][0] - p2["r"]*2)/2
    bl["pos"][1] = -(p2["size"][1] - p2["r"]*2)/2
    br["pos"][0] = (p2["size"][0] - p2["r"]*2)/2
    br["pos"][1] = -(p2["size"][1] - p2["r"]*2)/2
    del tl["size"]
    del tr["size"]
    del bl["size"]
    del br["size"]
    tlo = get_opsc_item(tl)
    tro = get_opsc_item(tr)
    blo = get_opsc_item(bl)
    bro = get_opsc_item(br)    
    return hull()(tlo, tro, blo, bro)



def import_scad_object(filename):
    # Import the .scad file and convert it to a solidpython object
    #filename = "parts"
    obj = import_scad(filename)
    return obj.main()
    


import os
import solid as solidpython

# A dictionary to store the defined objects


def load_scad_objects():
    opsc_library_gen.gen_library(defined_objects)

import random

def test(num_objects):
    objects = []
    for i in range(num_objects):
        # Choose a random shape
        #shape = random.choice(['cube', 'sphere', 'cylinder', 'hole', 'slot', "rounded_rectangle"])
        shape = random.choice(["rounded_rectangle"])

        # Choose a random type
        type = random.choice(['positive', 'negative'])
        
        # Create an empty object dictionary
        obj = {'shape': shape, 'type': type}
        
        # Set shape-specific parameters
        if obj['shape'] in ['cube']:
            obj['size'] =  [random.uniform(5, 15), random.uniform(5, 15), random.uniform(5, 15)]
        if obj['shape'] in ['rounded_rectangle']:
            obj['size'] =  [random.uniform(5, 15), random.uniform(5, 15), random.uniform(5, 15)]
            obj['r'] = random.uniform(0.5, 5)
        elif obj['shape'] == 'sphere':
            obj['r'] = random.uniform(5, 15)
        elif obj['shape'] in ['cylinder', 'hole']:
            obj['r'] = random.uniform(0.5, 5)
            obj['h'] = random.uniform(5, 15)
        elif obj['shape'] == 'slot':
            obj['r'] = random.uniform(0.5, 5)
            obj['h'] = random.uniform(5, 15)
            obj['w'] = random.uniform(5, 15)
        
        # Set a random position and rotation
        obj['pos'] = [random.uniform(-20, 20), random.uniform(-20, 20), random.uniform(-20, 20)]
        obj['rot'] = [random.uniform(-180, 180), random.uniform(-180, 180), random.uniform(-180, 180)]
        
        # Add the object to the list
        objects.append(obj)
    return objects

####### old file saving
def saveToAll(fileIn):
    saveToDxf(fileIn)
    saveToPng(fileIn)
    saveToStl(fileIn)
    saveToSvg(fileIn)

def saveToDxf(fileIn, fileOut="", copy_to_laser=True):
    if fileOut == "":
        fileOut = fileIn.replace(".scad",".dxf")
    saveToFile(fileIn, fileOut)


    
def saveToPng(fileIn, fileOut="",extra="--render"):
    if fileOut == "":
        fileOut = fileIn.replace(".scad",".png")
    saveToFile(fileIn, fileOut)

def saveToStl(fileIn, fileOut=""):
    if fileOut == "":
        fileOut = fileIn.replace(".scad",".stl")
    saveToFile(fileIn, fileOut)
    
def saveToSvg(fileIn, fileOut=""):
    if fileOut == "":
        fileOut = fileIn.replace(".scad",".svg")
    saveToFile(fileIn, fileOut)

def saveToFile(fileIn, fileOut,extra=""):
    #extra = extra + " --colorscheme Tomorrow"

    launchStr = 'openscad -o "' + fileOut + '"' + extra + ' "' + fileIn + '"'
    if ".png" in fileOut:
        launchStr = launchStr + " --render"
    print("            saveToFile launch string: " + launchStr)
    subprocess.run(launchStr)
    x=0

def getLaser(final_object,start=1.5,layers=1,thickness=3,tilediff=200):
        rv= []

        for x in range(layers):
            rv.append(translate([0,x*tilediff,0])(
                    projection()(
                        intersection()(translate([-500,-500,start+x*thickness])(cube(size=[1000,1000,0.1])),
                            final_object
                        )
                    )
            )
            )
            
        return union()(rv)

set_mode("laser")
load_scad_objects() 
 
************************************************/
